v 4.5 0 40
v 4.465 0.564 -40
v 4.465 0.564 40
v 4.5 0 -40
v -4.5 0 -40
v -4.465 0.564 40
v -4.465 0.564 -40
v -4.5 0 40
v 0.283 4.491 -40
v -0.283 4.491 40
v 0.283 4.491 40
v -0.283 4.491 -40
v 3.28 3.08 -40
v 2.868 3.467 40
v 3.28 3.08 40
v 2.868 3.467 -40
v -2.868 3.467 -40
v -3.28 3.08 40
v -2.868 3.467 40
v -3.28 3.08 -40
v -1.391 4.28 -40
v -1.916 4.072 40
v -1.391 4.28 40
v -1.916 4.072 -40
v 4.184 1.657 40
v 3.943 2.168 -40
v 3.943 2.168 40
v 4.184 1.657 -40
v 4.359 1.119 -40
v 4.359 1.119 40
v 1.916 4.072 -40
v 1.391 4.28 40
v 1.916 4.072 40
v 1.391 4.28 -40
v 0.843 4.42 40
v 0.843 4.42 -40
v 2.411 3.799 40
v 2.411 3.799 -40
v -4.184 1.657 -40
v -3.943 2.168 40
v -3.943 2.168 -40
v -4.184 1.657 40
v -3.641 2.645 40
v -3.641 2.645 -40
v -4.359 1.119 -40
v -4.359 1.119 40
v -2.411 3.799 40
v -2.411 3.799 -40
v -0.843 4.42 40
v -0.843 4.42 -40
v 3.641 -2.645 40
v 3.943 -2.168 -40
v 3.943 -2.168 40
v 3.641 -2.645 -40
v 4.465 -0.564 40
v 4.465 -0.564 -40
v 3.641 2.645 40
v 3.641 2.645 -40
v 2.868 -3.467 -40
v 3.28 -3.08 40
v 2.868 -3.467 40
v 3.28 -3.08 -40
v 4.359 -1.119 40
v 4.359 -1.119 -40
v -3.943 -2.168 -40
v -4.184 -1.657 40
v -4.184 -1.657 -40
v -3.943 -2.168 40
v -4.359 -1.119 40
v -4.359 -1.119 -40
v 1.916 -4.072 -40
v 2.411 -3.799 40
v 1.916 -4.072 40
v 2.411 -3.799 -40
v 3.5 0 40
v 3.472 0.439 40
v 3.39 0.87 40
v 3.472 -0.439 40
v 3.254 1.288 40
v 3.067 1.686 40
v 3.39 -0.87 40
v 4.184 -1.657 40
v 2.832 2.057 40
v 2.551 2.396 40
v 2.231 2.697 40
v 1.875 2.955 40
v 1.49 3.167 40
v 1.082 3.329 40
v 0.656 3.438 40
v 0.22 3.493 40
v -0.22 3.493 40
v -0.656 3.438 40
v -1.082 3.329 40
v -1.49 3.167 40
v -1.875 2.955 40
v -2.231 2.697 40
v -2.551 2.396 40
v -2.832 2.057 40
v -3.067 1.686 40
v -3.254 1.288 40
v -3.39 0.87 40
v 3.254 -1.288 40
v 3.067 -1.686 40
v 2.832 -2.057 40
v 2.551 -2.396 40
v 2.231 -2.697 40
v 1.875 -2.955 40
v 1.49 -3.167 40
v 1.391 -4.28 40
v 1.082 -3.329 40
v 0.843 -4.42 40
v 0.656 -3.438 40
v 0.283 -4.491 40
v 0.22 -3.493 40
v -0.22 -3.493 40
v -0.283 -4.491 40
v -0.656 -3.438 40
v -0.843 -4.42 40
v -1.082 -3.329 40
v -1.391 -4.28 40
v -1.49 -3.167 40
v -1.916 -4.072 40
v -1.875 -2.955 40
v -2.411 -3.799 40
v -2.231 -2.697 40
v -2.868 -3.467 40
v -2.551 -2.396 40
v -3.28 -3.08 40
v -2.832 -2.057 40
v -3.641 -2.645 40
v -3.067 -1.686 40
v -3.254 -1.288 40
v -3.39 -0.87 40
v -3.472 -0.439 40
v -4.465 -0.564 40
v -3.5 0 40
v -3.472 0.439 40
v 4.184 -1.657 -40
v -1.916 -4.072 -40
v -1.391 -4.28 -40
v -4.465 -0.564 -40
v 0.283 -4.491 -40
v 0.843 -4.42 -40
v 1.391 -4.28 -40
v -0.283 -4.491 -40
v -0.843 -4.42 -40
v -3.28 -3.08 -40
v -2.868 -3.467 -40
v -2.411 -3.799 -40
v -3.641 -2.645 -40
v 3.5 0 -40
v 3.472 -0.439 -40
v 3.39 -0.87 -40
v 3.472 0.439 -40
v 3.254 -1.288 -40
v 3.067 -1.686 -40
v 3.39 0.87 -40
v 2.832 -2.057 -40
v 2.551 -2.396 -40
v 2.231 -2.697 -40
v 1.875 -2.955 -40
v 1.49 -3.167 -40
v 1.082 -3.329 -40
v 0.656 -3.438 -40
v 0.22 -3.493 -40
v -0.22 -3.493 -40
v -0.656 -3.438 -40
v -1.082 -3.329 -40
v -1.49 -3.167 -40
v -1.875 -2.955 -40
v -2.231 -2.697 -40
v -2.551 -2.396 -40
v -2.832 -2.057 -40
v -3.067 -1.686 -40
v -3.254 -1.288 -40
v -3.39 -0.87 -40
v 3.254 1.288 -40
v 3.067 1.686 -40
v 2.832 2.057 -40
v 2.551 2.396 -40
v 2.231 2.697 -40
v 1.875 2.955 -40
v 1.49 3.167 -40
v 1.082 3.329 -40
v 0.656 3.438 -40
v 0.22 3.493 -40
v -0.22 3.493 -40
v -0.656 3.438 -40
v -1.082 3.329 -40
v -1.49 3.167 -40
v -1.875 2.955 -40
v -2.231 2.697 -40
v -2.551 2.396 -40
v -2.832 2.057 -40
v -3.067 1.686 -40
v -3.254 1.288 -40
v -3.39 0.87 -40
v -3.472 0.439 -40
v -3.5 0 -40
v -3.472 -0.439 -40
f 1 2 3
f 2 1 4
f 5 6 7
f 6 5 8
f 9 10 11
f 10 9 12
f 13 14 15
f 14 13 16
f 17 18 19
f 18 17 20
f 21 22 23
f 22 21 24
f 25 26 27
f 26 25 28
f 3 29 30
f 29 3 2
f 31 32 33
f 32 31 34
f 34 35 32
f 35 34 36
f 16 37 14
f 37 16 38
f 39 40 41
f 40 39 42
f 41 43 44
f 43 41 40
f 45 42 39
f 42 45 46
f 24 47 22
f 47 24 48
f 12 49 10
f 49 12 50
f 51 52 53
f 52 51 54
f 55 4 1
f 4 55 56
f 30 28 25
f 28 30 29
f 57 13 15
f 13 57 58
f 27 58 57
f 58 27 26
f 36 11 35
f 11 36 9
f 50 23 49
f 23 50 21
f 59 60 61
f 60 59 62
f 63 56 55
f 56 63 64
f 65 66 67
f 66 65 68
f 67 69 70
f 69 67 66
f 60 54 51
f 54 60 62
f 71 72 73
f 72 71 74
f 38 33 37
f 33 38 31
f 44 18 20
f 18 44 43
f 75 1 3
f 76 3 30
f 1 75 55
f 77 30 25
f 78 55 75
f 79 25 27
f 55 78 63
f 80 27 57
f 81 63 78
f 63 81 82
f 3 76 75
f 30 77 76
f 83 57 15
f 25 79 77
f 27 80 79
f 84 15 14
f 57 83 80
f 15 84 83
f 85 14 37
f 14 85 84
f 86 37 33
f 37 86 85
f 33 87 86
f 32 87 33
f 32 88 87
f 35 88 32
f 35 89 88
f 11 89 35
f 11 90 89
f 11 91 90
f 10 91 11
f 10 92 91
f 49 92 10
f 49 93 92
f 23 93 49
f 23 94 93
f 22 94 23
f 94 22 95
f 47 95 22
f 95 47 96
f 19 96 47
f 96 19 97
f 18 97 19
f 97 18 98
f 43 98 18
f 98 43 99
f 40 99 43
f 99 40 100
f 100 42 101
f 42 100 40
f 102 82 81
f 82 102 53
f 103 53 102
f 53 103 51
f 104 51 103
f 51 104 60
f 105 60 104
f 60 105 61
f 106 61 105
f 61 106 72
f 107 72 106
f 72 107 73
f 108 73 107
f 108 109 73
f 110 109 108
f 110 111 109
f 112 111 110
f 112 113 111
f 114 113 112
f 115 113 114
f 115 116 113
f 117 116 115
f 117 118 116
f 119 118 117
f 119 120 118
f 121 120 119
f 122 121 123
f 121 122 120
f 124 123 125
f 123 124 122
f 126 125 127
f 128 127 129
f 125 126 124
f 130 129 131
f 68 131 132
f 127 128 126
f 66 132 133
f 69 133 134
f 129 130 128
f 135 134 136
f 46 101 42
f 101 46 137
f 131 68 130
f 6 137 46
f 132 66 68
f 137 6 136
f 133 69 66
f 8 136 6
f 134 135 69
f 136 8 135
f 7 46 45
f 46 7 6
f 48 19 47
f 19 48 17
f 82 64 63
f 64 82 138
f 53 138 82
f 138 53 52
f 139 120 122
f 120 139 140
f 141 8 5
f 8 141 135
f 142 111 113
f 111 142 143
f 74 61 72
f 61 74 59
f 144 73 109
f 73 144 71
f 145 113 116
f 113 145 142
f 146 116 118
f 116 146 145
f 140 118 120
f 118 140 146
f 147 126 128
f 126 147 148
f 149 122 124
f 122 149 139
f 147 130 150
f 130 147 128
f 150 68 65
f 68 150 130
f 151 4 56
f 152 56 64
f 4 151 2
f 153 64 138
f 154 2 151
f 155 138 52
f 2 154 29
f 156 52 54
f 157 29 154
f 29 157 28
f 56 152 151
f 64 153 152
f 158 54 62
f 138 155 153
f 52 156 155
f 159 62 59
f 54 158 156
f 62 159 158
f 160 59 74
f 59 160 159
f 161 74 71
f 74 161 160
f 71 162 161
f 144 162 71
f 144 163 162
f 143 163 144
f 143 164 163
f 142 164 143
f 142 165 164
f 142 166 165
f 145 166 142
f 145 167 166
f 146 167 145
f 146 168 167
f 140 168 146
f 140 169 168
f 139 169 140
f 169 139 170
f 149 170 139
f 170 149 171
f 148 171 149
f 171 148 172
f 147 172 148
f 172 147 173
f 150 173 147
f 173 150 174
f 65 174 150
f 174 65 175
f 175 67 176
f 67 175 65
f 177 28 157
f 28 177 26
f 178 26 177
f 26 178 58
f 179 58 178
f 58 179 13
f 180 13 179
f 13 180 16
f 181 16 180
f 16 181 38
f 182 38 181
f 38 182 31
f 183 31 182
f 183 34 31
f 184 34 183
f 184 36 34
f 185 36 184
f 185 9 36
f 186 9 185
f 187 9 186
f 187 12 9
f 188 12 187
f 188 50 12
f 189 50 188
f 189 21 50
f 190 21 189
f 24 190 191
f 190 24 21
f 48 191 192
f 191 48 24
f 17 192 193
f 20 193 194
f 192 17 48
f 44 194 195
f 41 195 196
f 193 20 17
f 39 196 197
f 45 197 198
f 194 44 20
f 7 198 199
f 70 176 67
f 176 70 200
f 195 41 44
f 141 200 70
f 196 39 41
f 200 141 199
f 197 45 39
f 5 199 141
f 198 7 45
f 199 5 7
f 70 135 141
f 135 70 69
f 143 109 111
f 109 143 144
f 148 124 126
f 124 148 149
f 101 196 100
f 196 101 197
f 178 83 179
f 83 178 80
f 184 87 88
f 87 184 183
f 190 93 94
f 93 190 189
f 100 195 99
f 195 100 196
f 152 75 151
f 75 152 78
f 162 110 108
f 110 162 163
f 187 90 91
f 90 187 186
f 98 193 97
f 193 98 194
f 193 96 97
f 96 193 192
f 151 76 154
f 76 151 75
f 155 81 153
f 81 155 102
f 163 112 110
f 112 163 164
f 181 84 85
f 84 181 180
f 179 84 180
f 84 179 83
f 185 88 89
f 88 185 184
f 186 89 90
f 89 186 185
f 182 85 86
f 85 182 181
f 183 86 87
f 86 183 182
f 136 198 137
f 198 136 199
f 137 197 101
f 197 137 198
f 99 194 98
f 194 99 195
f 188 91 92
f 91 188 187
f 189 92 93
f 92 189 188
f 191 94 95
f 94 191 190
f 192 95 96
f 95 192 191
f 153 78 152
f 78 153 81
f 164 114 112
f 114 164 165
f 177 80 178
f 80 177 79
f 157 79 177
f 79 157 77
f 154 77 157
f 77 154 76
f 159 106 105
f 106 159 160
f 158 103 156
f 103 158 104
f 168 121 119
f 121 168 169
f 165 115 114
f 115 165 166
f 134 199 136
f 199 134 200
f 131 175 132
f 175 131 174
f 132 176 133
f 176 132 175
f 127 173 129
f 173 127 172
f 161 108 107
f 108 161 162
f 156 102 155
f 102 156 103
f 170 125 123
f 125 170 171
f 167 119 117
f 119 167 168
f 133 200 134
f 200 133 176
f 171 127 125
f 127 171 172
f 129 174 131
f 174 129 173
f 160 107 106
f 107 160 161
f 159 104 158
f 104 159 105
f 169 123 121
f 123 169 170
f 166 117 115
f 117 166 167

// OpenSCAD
$fn = 50;


difference() {
	union() {
		translate(v = [0, 0, -40.0000000000]) {
			cylinder(h = 80, r = 4.5000000000);
		}
	}
	union() {
		translate(v = [0, 0, -100.0000000000]) {
			cylinder(h = 200, r = 3.5000000000);
		}
	}
}
